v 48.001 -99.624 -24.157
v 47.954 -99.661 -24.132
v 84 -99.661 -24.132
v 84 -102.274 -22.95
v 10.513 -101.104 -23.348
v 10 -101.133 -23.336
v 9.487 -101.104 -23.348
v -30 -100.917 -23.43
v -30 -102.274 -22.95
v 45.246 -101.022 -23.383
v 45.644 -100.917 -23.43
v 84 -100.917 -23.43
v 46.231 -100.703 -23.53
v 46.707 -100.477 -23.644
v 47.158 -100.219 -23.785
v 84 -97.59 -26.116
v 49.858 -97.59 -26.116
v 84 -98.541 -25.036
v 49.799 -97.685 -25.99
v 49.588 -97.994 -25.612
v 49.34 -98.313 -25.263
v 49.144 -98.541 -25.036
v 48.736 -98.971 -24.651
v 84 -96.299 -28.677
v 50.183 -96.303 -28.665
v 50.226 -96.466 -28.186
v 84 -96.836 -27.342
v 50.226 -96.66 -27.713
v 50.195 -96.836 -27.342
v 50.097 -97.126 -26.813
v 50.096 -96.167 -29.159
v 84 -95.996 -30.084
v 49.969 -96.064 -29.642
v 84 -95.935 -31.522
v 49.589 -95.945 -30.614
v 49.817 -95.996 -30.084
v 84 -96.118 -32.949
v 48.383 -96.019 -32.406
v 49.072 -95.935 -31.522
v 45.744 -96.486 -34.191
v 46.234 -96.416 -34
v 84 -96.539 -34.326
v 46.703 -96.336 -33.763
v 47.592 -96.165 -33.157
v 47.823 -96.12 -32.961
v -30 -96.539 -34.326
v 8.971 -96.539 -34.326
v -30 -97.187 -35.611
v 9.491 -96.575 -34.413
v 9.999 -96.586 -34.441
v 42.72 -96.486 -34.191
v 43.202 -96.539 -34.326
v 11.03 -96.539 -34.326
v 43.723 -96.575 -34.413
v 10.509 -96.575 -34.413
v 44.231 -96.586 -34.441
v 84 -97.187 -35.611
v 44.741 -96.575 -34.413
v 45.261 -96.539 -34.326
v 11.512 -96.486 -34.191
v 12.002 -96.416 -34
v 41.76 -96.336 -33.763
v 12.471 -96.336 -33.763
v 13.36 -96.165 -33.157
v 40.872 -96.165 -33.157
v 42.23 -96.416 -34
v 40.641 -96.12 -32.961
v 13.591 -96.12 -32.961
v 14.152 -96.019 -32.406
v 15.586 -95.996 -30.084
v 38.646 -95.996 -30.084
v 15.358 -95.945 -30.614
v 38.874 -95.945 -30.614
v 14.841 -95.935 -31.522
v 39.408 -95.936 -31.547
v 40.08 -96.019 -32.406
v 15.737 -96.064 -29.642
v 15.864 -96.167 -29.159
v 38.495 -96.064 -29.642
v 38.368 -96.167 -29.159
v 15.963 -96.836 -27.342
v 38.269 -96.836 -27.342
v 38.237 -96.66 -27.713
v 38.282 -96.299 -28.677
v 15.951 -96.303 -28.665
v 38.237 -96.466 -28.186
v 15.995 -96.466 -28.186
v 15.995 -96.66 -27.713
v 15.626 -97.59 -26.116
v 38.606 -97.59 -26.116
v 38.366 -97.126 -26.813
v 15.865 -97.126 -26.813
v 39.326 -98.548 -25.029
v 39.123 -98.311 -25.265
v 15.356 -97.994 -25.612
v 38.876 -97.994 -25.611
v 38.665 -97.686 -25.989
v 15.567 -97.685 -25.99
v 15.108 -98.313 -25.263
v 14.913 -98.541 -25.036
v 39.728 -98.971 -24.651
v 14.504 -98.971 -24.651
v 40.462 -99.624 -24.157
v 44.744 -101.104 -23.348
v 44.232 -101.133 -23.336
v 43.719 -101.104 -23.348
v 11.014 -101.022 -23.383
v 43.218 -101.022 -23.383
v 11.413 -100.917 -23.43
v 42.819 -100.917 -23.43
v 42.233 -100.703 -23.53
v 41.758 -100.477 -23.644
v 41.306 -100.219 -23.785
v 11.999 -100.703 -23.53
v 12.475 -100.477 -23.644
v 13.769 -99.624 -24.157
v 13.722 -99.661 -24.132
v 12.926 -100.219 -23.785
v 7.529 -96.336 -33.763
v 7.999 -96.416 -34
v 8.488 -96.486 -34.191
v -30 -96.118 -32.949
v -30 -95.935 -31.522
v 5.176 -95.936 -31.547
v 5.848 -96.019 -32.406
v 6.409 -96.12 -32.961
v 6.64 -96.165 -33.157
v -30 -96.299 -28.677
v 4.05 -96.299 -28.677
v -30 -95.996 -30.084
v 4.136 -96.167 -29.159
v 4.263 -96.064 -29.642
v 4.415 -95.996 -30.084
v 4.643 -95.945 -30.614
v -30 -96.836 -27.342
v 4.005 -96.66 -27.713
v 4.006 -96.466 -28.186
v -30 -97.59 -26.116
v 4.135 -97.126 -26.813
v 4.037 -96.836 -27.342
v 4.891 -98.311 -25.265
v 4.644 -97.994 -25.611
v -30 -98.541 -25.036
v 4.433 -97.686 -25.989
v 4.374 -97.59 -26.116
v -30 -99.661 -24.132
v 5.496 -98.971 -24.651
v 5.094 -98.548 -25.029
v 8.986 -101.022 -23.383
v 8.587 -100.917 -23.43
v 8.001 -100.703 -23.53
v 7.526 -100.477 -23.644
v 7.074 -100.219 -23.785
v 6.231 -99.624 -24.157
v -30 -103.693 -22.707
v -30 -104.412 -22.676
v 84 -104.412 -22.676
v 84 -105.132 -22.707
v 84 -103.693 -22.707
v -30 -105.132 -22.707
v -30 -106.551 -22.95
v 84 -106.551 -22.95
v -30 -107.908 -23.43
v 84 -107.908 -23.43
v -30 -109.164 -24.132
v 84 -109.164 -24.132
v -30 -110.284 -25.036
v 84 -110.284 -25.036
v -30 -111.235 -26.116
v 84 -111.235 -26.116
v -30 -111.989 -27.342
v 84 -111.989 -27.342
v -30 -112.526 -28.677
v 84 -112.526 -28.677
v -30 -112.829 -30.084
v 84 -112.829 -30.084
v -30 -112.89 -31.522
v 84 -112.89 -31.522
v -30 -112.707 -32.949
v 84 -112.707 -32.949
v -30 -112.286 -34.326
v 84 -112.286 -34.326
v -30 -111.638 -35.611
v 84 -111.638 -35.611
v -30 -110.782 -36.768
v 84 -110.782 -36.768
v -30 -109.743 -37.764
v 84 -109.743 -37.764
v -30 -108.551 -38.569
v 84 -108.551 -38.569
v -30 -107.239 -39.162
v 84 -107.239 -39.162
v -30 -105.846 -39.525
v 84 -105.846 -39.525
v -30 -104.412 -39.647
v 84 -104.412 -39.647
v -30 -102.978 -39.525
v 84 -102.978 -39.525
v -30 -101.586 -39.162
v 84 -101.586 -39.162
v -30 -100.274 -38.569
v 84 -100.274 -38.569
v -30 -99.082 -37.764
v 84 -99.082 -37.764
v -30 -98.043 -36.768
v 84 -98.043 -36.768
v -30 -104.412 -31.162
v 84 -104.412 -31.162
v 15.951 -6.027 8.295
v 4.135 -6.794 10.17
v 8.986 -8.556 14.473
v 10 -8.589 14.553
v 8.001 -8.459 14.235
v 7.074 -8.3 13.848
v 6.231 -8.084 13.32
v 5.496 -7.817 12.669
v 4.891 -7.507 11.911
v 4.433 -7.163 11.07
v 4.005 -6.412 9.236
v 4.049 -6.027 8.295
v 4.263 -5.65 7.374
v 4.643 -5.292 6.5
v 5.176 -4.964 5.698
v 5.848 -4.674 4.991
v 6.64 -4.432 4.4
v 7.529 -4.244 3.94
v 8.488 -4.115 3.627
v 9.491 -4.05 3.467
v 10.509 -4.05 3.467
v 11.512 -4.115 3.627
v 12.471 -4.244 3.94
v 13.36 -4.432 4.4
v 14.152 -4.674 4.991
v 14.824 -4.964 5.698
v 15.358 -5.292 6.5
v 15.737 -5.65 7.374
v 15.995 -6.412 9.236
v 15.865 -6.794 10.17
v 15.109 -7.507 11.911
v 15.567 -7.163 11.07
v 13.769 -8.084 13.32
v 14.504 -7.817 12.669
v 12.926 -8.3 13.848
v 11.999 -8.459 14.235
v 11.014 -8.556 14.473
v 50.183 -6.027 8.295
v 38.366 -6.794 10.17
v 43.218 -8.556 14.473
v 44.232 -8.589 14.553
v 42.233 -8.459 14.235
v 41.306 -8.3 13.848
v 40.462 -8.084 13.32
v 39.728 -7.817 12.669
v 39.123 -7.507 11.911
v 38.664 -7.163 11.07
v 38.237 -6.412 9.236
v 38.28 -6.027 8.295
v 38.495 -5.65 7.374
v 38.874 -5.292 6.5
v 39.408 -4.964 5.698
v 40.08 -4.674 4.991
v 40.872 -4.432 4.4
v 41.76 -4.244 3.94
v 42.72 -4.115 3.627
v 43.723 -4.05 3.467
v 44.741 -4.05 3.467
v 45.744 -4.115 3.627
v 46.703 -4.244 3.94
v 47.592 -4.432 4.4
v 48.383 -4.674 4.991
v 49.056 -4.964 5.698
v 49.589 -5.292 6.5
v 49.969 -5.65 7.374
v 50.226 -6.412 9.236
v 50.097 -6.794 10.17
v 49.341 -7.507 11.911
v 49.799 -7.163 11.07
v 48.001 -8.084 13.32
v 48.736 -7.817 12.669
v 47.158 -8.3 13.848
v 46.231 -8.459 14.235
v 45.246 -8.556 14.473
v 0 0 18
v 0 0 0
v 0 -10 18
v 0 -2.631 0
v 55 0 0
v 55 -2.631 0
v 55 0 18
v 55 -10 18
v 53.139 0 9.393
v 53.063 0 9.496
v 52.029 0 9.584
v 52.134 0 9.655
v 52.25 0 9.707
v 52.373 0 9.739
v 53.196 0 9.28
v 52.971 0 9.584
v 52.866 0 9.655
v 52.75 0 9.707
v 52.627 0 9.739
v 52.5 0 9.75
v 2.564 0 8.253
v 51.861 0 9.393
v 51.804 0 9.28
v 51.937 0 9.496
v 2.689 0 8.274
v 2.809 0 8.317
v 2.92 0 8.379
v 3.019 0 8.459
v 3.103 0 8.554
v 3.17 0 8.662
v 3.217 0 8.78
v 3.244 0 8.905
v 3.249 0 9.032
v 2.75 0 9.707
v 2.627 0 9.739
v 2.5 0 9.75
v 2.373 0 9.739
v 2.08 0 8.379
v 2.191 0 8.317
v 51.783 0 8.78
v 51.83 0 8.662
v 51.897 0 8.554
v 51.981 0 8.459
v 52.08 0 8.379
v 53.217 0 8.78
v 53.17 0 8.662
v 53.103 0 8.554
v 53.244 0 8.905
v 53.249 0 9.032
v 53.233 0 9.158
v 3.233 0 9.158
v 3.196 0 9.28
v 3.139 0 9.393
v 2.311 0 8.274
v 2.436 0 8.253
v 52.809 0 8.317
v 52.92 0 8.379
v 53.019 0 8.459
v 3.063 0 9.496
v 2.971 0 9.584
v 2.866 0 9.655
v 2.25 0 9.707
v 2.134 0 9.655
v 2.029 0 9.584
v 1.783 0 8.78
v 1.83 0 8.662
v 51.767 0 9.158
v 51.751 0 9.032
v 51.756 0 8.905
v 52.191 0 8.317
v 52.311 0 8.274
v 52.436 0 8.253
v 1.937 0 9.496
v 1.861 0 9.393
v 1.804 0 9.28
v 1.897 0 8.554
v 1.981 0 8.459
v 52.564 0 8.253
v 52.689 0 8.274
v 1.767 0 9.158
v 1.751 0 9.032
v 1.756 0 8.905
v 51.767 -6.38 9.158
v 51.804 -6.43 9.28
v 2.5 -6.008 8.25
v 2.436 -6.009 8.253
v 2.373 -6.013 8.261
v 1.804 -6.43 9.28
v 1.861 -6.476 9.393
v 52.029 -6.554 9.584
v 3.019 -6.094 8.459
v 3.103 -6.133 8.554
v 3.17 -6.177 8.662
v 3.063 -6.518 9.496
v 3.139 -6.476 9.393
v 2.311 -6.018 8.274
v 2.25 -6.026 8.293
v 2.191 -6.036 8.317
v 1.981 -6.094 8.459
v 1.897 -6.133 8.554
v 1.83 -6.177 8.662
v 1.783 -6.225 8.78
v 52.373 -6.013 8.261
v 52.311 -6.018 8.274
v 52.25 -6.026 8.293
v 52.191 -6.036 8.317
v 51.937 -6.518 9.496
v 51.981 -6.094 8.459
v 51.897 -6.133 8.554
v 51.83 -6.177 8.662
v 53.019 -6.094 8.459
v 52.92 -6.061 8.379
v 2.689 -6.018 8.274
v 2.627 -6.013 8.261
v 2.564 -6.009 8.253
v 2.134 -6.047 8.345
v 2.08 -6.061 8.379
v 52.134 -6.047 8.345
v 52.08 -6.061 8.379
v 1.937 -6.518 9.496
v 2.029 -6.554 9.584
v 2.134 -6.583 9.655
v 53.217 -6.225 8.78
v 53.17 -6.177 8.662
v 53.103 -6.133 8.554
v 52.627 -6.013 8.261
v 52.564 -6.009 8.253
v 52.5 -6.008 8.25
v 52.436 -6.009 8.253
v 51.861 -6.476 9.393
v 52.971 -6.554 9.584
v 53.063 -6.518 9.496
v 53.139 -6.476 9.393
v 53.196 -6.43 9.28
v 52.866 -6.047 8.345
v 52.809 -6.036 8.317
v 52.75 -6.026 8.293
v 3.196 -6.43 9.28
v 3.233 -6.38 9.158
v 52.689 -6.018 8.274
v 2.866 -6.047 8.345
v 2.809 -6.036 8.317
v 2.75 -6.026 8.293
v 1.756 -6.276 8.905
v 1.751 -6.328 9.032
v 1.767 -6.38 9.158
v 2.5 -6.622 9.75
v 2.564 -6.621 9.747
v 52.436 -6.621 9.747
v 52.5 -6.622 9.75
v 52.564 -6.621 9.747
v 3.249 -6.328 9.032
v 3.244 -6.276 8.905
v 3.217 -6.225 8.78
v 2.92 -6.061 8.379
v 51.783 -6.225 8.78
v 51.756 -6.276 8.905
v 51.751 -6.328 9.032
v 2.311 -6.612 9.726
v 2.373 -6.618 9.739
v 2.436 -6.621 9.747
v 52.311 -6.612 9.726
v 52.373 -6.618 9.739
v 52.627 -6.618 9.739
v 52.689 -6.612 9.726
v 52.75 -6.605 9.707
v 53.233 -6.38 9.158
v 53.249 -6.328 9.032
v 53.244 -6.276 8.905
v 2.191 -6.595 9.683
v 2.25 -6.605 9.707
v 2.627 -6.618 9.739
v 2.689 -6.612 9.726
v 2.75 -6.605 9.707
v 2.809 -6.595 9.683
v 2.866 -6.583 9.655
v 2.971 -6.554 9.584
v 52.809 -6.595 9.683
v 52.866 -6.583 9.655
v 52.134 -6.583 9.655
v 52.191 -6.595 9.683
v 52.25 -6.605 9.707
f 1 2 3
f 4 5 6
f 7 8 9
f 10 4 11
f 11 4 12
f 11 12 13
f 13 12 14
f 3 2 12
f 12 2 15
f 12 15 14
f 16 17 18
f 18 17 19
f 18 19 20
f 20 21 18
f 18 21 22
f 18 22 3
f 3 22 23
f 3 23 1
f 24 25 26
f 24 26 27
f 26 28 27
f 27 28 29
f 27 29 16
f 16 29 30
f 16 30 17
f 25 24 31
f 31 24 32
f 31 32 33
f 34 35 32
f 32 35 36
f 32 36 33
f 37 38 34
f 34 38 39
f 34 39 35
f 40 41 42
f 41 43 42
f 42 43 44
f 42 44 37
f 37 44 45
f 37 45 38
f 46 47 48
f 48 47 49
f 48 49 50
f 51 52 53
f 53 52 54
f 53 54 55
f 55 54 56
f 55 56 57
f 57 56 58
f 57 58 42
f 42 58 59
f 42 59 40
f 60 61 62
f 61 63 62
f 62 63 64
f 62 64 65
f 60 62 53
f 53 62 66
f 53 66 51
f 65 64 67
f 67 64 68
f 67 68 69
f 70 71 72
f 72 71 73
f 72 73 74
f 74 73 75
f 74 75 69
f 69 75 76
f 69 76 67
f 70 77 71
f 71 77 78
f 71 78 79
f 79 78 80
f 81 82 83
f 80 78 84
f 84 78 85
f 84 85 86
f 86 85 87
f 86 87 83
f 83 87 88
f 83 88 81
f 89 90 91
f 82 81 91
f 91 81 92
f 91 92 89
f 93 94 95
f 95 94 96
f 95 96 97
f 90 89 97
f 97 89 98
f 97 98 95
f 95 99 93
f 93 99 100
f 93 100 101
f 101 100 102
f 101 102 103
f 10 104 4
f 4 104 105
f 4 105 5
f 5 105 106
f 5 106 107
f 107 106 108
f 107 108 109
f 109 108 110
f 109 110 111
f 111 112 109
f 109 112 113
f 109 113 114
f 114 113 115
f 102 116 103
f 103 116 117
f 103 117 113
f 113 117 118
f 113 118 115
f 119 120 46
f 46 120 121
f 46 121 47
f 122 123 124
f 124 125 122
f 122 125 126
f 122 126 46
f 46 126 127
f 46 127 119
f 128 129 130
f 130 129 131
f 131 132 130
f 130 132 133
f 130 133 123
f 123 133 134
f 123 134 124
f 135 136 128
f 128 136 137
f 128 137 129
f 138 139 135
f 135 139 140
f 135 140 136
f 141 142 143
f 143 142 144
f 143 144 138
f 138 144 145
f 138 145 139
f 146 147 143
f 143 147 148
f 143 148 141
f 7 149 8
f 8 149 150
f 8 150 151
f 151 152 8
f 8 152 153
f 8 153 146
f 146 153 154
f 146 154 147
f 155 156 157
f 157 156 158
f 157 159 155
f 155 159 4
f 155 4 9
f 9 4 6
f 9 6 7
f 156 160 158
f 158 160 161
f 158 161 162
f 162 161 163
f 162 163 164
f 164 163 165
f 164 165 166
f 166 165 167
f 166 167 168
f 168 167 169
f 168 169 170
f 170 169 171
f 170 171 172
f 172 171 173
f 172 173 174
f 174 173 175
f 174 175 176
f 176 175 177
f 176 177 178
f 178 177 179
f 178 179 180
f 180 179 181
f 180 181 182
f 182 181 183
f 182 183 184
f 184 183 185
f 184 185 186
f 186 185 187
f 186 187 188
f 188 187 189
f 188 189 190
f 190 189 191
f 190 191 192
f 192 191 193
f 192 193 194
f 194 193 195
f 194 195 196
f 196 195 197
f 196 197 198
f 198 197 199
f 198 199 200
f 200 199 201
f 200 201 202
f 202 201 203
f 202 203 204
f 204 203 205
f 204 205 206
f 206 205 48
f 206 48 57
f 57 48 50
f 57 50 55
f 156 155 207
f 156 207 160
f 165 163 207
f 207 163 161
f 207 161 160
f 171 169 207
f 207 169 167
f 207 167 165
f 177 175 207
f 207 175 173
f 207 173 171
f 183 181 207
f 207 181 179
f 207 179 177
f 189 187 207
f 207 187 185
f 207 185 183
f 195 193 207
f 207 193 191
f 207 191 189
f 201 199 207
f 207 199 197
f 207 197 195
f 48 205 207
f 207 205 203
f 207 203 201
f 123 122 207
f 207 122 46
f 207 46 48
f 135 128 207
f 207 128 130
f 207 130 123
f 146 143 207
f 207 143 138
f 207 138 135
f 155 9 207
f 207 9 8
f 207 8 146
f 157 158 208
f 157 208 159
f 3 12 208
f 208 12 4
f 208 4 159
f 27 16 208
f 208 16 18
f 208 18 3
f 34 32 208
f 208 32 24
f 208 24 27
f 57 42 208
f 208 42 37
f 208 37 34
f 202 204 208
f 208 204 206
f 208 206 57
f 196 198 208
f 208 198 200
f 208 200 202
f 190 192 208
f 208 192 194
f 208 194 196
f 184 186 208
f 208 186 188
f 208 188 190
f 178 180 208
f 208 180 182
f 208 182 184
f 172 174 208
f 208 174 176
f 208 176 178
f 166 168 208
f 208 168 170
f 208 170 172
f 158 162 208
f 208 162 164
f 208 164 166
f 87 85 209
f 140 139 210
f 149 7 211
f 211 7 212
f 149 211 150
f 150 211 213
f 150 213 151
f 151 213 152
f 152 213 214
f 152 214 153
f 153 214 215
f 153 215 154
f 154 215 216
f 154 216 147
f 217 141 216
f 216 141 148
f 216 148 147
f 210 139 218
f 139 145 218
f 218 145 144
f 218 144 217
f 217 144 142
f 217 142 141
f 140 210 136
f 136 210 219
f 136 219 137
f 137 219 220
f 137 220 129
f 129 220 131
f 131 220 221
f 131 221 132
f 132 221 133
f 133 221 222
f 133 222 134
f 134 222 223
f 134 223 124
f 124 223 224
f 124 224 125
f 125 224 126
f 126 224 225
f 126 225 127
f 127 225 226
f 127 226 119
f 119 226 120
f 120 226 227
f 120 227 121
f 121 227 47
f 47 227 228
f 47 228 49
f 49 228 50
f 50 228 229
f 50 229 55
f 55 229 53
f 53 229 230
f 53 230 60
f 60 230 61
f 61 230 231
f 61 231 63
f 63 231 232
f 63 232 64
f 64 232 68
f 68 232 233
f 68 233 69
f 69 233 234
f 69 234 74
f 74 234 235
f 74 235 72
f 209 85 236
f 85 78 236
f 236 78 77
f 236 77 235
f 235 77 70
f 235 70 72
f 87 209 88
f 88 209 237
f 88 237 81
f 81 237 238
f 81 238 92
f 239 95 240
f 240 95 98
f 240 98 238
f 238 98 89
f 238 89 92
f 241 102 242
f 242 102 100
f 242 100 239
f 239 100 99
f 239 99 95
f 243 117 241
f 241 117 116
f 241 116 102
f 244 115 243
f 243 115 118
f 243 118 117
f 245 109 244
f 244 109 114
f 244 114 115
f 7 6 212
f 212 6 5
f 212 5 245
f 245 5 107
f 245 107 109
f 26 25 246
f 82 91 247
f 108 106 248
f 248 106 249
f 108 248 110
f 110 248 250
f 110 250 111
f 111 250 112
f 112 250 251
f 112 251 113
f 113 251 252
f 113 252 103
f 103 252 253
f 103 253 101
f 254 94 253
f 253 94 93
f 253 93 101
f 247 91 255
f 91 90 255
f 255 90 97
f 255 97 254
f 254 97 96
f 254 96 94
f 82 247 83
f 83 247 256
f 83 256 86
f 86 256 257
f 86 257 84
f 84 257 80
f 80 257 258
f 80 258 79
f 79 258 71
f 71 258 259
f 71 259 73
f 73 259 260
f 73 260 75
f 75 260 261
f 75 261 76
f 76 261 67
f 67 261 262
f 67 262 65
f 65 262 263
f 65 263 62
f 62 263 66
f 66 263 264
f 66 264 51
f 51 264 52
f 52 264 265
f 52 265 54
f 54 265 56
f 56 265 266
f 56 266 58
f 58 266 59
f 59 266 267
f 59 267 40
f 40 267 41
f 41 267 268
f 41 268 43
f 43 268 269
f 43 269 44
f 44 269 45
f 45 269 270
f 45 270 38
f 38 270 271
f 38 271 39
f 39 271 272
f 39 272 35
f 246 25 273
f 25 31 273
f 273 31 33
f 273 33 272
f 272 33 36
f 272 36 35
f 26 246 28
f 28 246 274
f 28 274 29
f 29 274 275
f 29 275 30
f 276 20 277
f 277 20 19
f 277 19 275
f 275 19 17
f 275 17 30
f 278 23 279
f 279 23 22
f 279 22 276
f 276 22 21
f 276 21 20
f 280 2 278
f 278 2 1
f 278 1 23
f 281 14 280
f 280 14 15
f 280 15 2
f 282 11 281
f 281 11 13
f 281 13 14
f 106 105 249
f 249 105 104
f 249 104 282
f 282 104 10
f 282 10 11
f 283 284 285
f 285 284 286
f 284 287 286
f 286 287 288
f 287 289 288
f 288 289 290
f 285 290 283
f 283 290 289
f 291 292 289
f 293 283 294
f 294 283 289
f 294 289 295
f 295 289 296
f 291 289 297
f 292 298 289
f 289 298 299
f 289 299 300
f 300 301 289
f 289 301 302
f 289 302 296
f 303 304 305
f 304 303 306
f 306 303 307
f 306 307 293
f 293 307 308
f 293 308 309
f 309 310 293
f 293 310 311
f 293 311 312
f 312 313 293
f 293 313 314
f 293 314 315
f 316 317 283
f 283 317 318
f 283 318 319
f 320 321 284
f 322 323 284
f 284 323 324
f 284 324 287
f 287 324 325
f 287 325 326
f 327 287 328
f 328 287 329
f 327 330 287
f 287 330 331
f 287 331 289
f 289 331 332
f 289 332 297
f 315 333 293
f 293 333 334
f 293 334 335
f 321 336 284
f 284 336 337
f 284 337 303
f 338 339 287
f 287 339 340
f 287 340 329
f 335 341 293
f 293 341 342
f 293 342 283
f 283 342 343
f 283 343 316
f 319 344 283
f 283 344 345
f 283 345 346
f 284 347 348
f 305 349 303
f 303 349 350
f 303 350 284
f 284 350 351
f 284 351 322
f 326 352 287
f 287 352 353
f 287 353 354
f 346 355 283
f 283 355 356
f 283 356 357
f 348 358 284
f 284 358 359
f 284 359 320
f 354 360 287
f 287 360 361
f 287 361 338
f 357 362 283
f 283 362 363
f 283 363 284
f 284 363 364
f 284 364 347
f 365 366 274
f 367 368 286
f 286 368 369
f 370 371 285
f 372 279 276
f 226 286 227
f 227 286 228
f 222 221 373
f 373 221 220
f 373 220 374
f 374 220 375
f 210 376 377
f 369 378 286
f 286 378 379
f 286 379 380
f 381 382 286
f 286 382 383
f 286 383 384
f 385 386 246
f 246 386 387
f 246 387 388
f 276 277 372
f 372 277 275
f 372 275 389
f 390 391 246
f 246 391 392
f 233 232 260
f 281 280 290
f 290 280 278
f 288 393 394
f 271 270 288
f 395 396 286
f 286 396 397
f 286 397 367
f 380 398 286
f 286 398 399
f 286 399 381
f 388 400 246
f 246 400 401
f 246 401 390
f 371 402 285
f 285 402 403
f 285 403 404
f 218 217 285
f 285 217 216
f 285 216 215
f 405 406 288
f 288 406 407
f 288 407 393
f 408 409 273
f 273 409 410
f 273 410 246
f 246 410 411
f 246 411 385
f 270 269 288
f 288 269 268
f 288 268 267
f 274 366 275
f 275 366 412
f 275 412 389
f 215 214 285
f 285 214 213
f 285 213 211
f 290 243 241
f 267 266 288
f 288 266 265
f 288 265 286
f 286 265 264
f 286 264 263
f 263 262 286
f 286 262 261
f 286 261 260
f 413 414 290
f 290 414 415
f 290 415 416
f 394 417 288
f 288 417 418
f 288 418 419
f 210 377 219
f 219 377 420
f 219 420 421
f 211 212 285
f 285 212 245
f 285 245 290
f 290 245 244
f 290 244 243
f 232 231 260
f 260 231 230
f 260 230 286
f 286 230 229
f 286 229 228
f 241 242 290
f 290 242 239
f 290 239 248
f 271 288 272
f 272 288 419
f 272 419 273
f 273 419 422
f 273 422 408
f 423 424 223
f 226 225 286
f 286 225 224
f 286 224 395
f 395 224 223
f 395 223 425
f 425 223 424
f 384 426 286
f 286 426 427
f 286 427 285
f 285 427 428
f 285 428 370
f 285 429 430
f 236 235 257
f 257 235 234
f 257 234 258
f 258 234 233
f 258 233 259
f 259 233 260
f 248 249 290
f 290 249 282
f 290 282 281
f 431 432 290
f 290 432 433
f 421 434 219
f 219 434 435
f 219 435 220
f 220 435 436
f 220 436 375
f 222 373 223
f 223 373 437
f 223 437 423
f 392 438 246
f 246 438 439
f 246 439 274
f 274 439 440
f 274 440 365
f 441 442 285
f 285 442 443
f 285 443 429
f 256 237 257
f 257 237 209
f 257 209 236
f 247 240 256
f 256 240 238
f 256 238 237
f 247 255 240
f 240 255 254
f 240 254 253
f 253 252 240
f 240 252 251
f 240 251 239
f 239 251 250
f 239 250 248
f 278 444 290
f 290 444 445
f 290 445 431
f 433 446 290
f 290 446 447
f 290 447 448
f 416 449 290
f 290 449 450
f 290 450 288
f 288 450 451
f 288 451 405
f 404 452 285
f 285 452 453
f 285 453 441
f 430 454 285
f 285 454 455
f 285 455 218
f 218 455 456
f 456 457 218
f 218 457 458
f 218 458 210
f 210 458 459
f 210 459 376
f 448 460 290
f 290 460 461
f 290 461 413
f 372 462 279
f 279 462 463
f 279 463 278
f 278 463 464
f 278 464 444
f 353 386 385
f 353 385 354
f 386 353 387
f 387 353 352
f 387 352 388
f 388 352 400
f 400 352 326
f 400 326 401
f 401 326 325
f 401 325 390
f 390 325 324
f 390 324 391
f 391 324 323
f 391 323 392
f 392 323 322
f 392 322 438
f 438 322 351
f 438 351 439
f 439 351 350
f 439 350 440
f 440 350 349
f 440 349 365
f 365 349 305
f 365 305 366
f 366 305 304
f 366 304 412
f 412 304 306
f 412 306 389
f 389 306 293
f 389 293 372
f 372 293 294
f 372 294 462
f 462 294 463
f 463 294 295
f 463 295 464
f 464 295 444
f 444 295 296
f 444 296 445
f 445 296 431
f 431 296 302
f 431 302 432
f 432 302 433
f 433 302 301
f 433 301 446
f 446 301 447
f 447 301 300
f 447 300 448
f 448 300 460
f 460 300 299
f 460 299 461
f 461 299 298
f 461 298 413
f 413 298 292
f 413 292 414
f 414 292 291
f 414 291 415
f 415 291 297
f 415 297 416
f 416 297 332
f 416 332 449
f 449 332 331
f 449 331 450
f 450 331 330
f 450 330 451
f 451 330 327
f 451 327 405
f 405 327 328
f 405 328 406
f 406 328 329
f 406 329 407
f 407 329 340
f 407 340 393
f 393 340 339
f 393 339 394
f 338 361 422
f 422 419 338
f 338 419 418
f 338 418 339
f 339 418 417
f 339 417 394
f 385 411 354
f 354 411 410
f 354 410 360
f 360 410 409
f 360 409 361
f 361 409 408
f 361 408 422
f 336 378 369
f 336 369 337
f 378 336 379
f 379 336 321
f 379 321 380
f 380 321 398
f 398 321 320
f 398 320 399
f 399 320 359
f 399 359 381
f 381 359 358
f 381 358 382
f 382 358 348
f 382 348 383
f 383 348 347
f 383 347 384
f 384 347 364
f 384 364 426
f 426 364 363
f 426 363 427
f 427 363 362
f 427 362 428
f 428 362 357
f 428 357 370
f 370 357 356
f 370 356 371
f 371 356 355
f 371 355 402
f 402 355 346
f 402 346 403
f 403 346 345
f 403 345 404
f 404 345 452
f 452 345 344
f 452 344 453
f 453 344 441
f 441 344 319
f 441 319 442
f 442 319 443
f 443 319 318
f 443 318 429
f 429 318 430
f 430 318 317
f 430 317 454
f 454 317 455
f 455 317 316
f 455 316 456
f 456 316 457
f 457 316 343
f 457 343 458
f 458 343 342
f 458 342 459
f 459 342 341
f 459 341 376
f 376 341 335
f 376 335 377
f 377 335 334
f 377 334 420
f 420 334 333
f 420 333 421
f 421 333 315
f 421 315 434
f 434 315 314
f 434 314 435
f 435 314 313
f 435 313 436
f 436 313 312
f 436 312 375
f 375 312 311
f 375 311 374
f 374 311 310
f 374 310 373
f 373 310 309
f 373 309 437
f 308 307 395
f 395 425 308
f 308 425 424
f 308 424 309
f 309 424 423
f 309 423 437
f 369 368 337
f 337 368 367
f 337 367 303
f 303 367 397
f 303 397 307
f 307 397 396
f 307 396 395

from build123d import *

# Parameters (mm, degrees)
IZIM1_W                          = 55
IZIM1_H                          = 18
Y_KSEKLIK_EKSTR_ZYON1_DEPTH      = 10
KES_EKSTR_ZYON1_DEPTH            = 59.72818744
IZIM3_R                          = 6
Y_KSEKLIK_EKSTR_ZYON2_DEPTH      = 100
IZIM5_W                          = 12
IZIM5_H                          = 12
Y_KSEKLIK_EKSTR_ZYON3_DEPTH      = 12
IZIM7_R                          = 0.75
KES_EKSTR_ZYON3_DEPTH            = 131.929342088
Y_KSEKLIK_EKSTR_ZYON4_DEPTH      = 34
Y_KSEKLIK_EKSTR_ZYON4_DEPTH_BACK = 80
IZIM6_R                          = 8.485281374


with BuildPart() as part:
    # Çizim1 → Yükseklik-Ekstrüzyon1 (new body)
    with BuildSketch(Plane(origin=(0, 0, 0), x_dir=(1, 0, 0), z_dir=(0, 1, 0))):
        with Locations((27.5, -9)):
            Rectangle(IZIM1_W, IZIM1_H)
    extrude(amount=-Y_KSEKLIK_EKSTR_ZYON1_DEPTH)

    # Çizim2 → Kes-Ekstrüzyon1 (cut, through all)
    with BuildSketch(Plane.ZY):
        Polygon((18, -10), (0, -2.63065823), (0, -10), align=None)
    extrude(amount=-KES_EKSTR_ZYON1_DEPTH, mode=Mode.SUBTRACT)

    # Çizim3 → Yükseklik-Ekstrüzyon2 (add)
    with BuildSketch(Plane(origin=(0, -2.253018898, -0.922403682), x_dir=(-1, 0, 0), z_dir=(0, -0.9254441249587121, -0.3788841136540354))):
        with Locations(Location((-10, -10.721774999, 0), (0, 0, 270))):
            Circle(IZIM3_R)
        with Locations(Location((-44.231710038, -10.721774999, 0), (0, 0, 270))):
            Circle(IZIM3_R)
    extrude(amount=Y_KSEKLIK_EKSTR_ZYON2_DEPTH)

    # Çizim5 → Yükseklik-Ekstrüzyon3 (add)
    with BuildSketch(Plane(origin=(0, -94.797431394, -38.810815047), x_dir=(-1, 0, 0), z_dir=(0, -0.9254441249587119, -0.37888411365403546))):
        with Locations((-10, -10.721774999)):
            Rectangle(IZIM5_W, IZIM5_H)
        with Locations((-44.231710038, -10.721774999)):
            Rectangle(IZIM5_W, IZIM5_H)
    extrude(amount=Y_KSEKLIK_EKSTR_ZYON3_DEPTH)

    # Çizim7 → Kes-Ekstrüzyon3 (cut, through all)
    with BuildSketch(Plane(origin=(0, 0, 0), x_dir=(1, 0, 0), z_dir=(0, 1, 0))):
        with Locations(Location((2.5, -9, 0), (0, 0, 270))):
            Circle(IZIM7_R)
        with Locations(Location((52.5, -9, 0), (0, 0, 270))):
            Circle(IZIM7_R)
    extrude(amount=-KES_EKSTR_ZYON3_DEPTH, mode=Mode.SUBTRACT)

    # Çizim6 → Yükseklik-Ekstrüzyon4 (add, two sides: drawn at the far end of the back side and taken through both)
    with BuildSketch(Plane.ZY.offset(-4).offset(-Y_KSEKLIK_EKSTR_ZYON4_DEPTH_BACK)):
        with Locations((-31.161716047, -104.412406361)):
            Circle(IZIM6_R)
    extrude(amount=Y_KSEKLIK_EKSTR_ZYON4_DEPTH + Y_KSEKLIK_EKSTR_ZYON4_DEPTH_BACK)


solid = part.part
